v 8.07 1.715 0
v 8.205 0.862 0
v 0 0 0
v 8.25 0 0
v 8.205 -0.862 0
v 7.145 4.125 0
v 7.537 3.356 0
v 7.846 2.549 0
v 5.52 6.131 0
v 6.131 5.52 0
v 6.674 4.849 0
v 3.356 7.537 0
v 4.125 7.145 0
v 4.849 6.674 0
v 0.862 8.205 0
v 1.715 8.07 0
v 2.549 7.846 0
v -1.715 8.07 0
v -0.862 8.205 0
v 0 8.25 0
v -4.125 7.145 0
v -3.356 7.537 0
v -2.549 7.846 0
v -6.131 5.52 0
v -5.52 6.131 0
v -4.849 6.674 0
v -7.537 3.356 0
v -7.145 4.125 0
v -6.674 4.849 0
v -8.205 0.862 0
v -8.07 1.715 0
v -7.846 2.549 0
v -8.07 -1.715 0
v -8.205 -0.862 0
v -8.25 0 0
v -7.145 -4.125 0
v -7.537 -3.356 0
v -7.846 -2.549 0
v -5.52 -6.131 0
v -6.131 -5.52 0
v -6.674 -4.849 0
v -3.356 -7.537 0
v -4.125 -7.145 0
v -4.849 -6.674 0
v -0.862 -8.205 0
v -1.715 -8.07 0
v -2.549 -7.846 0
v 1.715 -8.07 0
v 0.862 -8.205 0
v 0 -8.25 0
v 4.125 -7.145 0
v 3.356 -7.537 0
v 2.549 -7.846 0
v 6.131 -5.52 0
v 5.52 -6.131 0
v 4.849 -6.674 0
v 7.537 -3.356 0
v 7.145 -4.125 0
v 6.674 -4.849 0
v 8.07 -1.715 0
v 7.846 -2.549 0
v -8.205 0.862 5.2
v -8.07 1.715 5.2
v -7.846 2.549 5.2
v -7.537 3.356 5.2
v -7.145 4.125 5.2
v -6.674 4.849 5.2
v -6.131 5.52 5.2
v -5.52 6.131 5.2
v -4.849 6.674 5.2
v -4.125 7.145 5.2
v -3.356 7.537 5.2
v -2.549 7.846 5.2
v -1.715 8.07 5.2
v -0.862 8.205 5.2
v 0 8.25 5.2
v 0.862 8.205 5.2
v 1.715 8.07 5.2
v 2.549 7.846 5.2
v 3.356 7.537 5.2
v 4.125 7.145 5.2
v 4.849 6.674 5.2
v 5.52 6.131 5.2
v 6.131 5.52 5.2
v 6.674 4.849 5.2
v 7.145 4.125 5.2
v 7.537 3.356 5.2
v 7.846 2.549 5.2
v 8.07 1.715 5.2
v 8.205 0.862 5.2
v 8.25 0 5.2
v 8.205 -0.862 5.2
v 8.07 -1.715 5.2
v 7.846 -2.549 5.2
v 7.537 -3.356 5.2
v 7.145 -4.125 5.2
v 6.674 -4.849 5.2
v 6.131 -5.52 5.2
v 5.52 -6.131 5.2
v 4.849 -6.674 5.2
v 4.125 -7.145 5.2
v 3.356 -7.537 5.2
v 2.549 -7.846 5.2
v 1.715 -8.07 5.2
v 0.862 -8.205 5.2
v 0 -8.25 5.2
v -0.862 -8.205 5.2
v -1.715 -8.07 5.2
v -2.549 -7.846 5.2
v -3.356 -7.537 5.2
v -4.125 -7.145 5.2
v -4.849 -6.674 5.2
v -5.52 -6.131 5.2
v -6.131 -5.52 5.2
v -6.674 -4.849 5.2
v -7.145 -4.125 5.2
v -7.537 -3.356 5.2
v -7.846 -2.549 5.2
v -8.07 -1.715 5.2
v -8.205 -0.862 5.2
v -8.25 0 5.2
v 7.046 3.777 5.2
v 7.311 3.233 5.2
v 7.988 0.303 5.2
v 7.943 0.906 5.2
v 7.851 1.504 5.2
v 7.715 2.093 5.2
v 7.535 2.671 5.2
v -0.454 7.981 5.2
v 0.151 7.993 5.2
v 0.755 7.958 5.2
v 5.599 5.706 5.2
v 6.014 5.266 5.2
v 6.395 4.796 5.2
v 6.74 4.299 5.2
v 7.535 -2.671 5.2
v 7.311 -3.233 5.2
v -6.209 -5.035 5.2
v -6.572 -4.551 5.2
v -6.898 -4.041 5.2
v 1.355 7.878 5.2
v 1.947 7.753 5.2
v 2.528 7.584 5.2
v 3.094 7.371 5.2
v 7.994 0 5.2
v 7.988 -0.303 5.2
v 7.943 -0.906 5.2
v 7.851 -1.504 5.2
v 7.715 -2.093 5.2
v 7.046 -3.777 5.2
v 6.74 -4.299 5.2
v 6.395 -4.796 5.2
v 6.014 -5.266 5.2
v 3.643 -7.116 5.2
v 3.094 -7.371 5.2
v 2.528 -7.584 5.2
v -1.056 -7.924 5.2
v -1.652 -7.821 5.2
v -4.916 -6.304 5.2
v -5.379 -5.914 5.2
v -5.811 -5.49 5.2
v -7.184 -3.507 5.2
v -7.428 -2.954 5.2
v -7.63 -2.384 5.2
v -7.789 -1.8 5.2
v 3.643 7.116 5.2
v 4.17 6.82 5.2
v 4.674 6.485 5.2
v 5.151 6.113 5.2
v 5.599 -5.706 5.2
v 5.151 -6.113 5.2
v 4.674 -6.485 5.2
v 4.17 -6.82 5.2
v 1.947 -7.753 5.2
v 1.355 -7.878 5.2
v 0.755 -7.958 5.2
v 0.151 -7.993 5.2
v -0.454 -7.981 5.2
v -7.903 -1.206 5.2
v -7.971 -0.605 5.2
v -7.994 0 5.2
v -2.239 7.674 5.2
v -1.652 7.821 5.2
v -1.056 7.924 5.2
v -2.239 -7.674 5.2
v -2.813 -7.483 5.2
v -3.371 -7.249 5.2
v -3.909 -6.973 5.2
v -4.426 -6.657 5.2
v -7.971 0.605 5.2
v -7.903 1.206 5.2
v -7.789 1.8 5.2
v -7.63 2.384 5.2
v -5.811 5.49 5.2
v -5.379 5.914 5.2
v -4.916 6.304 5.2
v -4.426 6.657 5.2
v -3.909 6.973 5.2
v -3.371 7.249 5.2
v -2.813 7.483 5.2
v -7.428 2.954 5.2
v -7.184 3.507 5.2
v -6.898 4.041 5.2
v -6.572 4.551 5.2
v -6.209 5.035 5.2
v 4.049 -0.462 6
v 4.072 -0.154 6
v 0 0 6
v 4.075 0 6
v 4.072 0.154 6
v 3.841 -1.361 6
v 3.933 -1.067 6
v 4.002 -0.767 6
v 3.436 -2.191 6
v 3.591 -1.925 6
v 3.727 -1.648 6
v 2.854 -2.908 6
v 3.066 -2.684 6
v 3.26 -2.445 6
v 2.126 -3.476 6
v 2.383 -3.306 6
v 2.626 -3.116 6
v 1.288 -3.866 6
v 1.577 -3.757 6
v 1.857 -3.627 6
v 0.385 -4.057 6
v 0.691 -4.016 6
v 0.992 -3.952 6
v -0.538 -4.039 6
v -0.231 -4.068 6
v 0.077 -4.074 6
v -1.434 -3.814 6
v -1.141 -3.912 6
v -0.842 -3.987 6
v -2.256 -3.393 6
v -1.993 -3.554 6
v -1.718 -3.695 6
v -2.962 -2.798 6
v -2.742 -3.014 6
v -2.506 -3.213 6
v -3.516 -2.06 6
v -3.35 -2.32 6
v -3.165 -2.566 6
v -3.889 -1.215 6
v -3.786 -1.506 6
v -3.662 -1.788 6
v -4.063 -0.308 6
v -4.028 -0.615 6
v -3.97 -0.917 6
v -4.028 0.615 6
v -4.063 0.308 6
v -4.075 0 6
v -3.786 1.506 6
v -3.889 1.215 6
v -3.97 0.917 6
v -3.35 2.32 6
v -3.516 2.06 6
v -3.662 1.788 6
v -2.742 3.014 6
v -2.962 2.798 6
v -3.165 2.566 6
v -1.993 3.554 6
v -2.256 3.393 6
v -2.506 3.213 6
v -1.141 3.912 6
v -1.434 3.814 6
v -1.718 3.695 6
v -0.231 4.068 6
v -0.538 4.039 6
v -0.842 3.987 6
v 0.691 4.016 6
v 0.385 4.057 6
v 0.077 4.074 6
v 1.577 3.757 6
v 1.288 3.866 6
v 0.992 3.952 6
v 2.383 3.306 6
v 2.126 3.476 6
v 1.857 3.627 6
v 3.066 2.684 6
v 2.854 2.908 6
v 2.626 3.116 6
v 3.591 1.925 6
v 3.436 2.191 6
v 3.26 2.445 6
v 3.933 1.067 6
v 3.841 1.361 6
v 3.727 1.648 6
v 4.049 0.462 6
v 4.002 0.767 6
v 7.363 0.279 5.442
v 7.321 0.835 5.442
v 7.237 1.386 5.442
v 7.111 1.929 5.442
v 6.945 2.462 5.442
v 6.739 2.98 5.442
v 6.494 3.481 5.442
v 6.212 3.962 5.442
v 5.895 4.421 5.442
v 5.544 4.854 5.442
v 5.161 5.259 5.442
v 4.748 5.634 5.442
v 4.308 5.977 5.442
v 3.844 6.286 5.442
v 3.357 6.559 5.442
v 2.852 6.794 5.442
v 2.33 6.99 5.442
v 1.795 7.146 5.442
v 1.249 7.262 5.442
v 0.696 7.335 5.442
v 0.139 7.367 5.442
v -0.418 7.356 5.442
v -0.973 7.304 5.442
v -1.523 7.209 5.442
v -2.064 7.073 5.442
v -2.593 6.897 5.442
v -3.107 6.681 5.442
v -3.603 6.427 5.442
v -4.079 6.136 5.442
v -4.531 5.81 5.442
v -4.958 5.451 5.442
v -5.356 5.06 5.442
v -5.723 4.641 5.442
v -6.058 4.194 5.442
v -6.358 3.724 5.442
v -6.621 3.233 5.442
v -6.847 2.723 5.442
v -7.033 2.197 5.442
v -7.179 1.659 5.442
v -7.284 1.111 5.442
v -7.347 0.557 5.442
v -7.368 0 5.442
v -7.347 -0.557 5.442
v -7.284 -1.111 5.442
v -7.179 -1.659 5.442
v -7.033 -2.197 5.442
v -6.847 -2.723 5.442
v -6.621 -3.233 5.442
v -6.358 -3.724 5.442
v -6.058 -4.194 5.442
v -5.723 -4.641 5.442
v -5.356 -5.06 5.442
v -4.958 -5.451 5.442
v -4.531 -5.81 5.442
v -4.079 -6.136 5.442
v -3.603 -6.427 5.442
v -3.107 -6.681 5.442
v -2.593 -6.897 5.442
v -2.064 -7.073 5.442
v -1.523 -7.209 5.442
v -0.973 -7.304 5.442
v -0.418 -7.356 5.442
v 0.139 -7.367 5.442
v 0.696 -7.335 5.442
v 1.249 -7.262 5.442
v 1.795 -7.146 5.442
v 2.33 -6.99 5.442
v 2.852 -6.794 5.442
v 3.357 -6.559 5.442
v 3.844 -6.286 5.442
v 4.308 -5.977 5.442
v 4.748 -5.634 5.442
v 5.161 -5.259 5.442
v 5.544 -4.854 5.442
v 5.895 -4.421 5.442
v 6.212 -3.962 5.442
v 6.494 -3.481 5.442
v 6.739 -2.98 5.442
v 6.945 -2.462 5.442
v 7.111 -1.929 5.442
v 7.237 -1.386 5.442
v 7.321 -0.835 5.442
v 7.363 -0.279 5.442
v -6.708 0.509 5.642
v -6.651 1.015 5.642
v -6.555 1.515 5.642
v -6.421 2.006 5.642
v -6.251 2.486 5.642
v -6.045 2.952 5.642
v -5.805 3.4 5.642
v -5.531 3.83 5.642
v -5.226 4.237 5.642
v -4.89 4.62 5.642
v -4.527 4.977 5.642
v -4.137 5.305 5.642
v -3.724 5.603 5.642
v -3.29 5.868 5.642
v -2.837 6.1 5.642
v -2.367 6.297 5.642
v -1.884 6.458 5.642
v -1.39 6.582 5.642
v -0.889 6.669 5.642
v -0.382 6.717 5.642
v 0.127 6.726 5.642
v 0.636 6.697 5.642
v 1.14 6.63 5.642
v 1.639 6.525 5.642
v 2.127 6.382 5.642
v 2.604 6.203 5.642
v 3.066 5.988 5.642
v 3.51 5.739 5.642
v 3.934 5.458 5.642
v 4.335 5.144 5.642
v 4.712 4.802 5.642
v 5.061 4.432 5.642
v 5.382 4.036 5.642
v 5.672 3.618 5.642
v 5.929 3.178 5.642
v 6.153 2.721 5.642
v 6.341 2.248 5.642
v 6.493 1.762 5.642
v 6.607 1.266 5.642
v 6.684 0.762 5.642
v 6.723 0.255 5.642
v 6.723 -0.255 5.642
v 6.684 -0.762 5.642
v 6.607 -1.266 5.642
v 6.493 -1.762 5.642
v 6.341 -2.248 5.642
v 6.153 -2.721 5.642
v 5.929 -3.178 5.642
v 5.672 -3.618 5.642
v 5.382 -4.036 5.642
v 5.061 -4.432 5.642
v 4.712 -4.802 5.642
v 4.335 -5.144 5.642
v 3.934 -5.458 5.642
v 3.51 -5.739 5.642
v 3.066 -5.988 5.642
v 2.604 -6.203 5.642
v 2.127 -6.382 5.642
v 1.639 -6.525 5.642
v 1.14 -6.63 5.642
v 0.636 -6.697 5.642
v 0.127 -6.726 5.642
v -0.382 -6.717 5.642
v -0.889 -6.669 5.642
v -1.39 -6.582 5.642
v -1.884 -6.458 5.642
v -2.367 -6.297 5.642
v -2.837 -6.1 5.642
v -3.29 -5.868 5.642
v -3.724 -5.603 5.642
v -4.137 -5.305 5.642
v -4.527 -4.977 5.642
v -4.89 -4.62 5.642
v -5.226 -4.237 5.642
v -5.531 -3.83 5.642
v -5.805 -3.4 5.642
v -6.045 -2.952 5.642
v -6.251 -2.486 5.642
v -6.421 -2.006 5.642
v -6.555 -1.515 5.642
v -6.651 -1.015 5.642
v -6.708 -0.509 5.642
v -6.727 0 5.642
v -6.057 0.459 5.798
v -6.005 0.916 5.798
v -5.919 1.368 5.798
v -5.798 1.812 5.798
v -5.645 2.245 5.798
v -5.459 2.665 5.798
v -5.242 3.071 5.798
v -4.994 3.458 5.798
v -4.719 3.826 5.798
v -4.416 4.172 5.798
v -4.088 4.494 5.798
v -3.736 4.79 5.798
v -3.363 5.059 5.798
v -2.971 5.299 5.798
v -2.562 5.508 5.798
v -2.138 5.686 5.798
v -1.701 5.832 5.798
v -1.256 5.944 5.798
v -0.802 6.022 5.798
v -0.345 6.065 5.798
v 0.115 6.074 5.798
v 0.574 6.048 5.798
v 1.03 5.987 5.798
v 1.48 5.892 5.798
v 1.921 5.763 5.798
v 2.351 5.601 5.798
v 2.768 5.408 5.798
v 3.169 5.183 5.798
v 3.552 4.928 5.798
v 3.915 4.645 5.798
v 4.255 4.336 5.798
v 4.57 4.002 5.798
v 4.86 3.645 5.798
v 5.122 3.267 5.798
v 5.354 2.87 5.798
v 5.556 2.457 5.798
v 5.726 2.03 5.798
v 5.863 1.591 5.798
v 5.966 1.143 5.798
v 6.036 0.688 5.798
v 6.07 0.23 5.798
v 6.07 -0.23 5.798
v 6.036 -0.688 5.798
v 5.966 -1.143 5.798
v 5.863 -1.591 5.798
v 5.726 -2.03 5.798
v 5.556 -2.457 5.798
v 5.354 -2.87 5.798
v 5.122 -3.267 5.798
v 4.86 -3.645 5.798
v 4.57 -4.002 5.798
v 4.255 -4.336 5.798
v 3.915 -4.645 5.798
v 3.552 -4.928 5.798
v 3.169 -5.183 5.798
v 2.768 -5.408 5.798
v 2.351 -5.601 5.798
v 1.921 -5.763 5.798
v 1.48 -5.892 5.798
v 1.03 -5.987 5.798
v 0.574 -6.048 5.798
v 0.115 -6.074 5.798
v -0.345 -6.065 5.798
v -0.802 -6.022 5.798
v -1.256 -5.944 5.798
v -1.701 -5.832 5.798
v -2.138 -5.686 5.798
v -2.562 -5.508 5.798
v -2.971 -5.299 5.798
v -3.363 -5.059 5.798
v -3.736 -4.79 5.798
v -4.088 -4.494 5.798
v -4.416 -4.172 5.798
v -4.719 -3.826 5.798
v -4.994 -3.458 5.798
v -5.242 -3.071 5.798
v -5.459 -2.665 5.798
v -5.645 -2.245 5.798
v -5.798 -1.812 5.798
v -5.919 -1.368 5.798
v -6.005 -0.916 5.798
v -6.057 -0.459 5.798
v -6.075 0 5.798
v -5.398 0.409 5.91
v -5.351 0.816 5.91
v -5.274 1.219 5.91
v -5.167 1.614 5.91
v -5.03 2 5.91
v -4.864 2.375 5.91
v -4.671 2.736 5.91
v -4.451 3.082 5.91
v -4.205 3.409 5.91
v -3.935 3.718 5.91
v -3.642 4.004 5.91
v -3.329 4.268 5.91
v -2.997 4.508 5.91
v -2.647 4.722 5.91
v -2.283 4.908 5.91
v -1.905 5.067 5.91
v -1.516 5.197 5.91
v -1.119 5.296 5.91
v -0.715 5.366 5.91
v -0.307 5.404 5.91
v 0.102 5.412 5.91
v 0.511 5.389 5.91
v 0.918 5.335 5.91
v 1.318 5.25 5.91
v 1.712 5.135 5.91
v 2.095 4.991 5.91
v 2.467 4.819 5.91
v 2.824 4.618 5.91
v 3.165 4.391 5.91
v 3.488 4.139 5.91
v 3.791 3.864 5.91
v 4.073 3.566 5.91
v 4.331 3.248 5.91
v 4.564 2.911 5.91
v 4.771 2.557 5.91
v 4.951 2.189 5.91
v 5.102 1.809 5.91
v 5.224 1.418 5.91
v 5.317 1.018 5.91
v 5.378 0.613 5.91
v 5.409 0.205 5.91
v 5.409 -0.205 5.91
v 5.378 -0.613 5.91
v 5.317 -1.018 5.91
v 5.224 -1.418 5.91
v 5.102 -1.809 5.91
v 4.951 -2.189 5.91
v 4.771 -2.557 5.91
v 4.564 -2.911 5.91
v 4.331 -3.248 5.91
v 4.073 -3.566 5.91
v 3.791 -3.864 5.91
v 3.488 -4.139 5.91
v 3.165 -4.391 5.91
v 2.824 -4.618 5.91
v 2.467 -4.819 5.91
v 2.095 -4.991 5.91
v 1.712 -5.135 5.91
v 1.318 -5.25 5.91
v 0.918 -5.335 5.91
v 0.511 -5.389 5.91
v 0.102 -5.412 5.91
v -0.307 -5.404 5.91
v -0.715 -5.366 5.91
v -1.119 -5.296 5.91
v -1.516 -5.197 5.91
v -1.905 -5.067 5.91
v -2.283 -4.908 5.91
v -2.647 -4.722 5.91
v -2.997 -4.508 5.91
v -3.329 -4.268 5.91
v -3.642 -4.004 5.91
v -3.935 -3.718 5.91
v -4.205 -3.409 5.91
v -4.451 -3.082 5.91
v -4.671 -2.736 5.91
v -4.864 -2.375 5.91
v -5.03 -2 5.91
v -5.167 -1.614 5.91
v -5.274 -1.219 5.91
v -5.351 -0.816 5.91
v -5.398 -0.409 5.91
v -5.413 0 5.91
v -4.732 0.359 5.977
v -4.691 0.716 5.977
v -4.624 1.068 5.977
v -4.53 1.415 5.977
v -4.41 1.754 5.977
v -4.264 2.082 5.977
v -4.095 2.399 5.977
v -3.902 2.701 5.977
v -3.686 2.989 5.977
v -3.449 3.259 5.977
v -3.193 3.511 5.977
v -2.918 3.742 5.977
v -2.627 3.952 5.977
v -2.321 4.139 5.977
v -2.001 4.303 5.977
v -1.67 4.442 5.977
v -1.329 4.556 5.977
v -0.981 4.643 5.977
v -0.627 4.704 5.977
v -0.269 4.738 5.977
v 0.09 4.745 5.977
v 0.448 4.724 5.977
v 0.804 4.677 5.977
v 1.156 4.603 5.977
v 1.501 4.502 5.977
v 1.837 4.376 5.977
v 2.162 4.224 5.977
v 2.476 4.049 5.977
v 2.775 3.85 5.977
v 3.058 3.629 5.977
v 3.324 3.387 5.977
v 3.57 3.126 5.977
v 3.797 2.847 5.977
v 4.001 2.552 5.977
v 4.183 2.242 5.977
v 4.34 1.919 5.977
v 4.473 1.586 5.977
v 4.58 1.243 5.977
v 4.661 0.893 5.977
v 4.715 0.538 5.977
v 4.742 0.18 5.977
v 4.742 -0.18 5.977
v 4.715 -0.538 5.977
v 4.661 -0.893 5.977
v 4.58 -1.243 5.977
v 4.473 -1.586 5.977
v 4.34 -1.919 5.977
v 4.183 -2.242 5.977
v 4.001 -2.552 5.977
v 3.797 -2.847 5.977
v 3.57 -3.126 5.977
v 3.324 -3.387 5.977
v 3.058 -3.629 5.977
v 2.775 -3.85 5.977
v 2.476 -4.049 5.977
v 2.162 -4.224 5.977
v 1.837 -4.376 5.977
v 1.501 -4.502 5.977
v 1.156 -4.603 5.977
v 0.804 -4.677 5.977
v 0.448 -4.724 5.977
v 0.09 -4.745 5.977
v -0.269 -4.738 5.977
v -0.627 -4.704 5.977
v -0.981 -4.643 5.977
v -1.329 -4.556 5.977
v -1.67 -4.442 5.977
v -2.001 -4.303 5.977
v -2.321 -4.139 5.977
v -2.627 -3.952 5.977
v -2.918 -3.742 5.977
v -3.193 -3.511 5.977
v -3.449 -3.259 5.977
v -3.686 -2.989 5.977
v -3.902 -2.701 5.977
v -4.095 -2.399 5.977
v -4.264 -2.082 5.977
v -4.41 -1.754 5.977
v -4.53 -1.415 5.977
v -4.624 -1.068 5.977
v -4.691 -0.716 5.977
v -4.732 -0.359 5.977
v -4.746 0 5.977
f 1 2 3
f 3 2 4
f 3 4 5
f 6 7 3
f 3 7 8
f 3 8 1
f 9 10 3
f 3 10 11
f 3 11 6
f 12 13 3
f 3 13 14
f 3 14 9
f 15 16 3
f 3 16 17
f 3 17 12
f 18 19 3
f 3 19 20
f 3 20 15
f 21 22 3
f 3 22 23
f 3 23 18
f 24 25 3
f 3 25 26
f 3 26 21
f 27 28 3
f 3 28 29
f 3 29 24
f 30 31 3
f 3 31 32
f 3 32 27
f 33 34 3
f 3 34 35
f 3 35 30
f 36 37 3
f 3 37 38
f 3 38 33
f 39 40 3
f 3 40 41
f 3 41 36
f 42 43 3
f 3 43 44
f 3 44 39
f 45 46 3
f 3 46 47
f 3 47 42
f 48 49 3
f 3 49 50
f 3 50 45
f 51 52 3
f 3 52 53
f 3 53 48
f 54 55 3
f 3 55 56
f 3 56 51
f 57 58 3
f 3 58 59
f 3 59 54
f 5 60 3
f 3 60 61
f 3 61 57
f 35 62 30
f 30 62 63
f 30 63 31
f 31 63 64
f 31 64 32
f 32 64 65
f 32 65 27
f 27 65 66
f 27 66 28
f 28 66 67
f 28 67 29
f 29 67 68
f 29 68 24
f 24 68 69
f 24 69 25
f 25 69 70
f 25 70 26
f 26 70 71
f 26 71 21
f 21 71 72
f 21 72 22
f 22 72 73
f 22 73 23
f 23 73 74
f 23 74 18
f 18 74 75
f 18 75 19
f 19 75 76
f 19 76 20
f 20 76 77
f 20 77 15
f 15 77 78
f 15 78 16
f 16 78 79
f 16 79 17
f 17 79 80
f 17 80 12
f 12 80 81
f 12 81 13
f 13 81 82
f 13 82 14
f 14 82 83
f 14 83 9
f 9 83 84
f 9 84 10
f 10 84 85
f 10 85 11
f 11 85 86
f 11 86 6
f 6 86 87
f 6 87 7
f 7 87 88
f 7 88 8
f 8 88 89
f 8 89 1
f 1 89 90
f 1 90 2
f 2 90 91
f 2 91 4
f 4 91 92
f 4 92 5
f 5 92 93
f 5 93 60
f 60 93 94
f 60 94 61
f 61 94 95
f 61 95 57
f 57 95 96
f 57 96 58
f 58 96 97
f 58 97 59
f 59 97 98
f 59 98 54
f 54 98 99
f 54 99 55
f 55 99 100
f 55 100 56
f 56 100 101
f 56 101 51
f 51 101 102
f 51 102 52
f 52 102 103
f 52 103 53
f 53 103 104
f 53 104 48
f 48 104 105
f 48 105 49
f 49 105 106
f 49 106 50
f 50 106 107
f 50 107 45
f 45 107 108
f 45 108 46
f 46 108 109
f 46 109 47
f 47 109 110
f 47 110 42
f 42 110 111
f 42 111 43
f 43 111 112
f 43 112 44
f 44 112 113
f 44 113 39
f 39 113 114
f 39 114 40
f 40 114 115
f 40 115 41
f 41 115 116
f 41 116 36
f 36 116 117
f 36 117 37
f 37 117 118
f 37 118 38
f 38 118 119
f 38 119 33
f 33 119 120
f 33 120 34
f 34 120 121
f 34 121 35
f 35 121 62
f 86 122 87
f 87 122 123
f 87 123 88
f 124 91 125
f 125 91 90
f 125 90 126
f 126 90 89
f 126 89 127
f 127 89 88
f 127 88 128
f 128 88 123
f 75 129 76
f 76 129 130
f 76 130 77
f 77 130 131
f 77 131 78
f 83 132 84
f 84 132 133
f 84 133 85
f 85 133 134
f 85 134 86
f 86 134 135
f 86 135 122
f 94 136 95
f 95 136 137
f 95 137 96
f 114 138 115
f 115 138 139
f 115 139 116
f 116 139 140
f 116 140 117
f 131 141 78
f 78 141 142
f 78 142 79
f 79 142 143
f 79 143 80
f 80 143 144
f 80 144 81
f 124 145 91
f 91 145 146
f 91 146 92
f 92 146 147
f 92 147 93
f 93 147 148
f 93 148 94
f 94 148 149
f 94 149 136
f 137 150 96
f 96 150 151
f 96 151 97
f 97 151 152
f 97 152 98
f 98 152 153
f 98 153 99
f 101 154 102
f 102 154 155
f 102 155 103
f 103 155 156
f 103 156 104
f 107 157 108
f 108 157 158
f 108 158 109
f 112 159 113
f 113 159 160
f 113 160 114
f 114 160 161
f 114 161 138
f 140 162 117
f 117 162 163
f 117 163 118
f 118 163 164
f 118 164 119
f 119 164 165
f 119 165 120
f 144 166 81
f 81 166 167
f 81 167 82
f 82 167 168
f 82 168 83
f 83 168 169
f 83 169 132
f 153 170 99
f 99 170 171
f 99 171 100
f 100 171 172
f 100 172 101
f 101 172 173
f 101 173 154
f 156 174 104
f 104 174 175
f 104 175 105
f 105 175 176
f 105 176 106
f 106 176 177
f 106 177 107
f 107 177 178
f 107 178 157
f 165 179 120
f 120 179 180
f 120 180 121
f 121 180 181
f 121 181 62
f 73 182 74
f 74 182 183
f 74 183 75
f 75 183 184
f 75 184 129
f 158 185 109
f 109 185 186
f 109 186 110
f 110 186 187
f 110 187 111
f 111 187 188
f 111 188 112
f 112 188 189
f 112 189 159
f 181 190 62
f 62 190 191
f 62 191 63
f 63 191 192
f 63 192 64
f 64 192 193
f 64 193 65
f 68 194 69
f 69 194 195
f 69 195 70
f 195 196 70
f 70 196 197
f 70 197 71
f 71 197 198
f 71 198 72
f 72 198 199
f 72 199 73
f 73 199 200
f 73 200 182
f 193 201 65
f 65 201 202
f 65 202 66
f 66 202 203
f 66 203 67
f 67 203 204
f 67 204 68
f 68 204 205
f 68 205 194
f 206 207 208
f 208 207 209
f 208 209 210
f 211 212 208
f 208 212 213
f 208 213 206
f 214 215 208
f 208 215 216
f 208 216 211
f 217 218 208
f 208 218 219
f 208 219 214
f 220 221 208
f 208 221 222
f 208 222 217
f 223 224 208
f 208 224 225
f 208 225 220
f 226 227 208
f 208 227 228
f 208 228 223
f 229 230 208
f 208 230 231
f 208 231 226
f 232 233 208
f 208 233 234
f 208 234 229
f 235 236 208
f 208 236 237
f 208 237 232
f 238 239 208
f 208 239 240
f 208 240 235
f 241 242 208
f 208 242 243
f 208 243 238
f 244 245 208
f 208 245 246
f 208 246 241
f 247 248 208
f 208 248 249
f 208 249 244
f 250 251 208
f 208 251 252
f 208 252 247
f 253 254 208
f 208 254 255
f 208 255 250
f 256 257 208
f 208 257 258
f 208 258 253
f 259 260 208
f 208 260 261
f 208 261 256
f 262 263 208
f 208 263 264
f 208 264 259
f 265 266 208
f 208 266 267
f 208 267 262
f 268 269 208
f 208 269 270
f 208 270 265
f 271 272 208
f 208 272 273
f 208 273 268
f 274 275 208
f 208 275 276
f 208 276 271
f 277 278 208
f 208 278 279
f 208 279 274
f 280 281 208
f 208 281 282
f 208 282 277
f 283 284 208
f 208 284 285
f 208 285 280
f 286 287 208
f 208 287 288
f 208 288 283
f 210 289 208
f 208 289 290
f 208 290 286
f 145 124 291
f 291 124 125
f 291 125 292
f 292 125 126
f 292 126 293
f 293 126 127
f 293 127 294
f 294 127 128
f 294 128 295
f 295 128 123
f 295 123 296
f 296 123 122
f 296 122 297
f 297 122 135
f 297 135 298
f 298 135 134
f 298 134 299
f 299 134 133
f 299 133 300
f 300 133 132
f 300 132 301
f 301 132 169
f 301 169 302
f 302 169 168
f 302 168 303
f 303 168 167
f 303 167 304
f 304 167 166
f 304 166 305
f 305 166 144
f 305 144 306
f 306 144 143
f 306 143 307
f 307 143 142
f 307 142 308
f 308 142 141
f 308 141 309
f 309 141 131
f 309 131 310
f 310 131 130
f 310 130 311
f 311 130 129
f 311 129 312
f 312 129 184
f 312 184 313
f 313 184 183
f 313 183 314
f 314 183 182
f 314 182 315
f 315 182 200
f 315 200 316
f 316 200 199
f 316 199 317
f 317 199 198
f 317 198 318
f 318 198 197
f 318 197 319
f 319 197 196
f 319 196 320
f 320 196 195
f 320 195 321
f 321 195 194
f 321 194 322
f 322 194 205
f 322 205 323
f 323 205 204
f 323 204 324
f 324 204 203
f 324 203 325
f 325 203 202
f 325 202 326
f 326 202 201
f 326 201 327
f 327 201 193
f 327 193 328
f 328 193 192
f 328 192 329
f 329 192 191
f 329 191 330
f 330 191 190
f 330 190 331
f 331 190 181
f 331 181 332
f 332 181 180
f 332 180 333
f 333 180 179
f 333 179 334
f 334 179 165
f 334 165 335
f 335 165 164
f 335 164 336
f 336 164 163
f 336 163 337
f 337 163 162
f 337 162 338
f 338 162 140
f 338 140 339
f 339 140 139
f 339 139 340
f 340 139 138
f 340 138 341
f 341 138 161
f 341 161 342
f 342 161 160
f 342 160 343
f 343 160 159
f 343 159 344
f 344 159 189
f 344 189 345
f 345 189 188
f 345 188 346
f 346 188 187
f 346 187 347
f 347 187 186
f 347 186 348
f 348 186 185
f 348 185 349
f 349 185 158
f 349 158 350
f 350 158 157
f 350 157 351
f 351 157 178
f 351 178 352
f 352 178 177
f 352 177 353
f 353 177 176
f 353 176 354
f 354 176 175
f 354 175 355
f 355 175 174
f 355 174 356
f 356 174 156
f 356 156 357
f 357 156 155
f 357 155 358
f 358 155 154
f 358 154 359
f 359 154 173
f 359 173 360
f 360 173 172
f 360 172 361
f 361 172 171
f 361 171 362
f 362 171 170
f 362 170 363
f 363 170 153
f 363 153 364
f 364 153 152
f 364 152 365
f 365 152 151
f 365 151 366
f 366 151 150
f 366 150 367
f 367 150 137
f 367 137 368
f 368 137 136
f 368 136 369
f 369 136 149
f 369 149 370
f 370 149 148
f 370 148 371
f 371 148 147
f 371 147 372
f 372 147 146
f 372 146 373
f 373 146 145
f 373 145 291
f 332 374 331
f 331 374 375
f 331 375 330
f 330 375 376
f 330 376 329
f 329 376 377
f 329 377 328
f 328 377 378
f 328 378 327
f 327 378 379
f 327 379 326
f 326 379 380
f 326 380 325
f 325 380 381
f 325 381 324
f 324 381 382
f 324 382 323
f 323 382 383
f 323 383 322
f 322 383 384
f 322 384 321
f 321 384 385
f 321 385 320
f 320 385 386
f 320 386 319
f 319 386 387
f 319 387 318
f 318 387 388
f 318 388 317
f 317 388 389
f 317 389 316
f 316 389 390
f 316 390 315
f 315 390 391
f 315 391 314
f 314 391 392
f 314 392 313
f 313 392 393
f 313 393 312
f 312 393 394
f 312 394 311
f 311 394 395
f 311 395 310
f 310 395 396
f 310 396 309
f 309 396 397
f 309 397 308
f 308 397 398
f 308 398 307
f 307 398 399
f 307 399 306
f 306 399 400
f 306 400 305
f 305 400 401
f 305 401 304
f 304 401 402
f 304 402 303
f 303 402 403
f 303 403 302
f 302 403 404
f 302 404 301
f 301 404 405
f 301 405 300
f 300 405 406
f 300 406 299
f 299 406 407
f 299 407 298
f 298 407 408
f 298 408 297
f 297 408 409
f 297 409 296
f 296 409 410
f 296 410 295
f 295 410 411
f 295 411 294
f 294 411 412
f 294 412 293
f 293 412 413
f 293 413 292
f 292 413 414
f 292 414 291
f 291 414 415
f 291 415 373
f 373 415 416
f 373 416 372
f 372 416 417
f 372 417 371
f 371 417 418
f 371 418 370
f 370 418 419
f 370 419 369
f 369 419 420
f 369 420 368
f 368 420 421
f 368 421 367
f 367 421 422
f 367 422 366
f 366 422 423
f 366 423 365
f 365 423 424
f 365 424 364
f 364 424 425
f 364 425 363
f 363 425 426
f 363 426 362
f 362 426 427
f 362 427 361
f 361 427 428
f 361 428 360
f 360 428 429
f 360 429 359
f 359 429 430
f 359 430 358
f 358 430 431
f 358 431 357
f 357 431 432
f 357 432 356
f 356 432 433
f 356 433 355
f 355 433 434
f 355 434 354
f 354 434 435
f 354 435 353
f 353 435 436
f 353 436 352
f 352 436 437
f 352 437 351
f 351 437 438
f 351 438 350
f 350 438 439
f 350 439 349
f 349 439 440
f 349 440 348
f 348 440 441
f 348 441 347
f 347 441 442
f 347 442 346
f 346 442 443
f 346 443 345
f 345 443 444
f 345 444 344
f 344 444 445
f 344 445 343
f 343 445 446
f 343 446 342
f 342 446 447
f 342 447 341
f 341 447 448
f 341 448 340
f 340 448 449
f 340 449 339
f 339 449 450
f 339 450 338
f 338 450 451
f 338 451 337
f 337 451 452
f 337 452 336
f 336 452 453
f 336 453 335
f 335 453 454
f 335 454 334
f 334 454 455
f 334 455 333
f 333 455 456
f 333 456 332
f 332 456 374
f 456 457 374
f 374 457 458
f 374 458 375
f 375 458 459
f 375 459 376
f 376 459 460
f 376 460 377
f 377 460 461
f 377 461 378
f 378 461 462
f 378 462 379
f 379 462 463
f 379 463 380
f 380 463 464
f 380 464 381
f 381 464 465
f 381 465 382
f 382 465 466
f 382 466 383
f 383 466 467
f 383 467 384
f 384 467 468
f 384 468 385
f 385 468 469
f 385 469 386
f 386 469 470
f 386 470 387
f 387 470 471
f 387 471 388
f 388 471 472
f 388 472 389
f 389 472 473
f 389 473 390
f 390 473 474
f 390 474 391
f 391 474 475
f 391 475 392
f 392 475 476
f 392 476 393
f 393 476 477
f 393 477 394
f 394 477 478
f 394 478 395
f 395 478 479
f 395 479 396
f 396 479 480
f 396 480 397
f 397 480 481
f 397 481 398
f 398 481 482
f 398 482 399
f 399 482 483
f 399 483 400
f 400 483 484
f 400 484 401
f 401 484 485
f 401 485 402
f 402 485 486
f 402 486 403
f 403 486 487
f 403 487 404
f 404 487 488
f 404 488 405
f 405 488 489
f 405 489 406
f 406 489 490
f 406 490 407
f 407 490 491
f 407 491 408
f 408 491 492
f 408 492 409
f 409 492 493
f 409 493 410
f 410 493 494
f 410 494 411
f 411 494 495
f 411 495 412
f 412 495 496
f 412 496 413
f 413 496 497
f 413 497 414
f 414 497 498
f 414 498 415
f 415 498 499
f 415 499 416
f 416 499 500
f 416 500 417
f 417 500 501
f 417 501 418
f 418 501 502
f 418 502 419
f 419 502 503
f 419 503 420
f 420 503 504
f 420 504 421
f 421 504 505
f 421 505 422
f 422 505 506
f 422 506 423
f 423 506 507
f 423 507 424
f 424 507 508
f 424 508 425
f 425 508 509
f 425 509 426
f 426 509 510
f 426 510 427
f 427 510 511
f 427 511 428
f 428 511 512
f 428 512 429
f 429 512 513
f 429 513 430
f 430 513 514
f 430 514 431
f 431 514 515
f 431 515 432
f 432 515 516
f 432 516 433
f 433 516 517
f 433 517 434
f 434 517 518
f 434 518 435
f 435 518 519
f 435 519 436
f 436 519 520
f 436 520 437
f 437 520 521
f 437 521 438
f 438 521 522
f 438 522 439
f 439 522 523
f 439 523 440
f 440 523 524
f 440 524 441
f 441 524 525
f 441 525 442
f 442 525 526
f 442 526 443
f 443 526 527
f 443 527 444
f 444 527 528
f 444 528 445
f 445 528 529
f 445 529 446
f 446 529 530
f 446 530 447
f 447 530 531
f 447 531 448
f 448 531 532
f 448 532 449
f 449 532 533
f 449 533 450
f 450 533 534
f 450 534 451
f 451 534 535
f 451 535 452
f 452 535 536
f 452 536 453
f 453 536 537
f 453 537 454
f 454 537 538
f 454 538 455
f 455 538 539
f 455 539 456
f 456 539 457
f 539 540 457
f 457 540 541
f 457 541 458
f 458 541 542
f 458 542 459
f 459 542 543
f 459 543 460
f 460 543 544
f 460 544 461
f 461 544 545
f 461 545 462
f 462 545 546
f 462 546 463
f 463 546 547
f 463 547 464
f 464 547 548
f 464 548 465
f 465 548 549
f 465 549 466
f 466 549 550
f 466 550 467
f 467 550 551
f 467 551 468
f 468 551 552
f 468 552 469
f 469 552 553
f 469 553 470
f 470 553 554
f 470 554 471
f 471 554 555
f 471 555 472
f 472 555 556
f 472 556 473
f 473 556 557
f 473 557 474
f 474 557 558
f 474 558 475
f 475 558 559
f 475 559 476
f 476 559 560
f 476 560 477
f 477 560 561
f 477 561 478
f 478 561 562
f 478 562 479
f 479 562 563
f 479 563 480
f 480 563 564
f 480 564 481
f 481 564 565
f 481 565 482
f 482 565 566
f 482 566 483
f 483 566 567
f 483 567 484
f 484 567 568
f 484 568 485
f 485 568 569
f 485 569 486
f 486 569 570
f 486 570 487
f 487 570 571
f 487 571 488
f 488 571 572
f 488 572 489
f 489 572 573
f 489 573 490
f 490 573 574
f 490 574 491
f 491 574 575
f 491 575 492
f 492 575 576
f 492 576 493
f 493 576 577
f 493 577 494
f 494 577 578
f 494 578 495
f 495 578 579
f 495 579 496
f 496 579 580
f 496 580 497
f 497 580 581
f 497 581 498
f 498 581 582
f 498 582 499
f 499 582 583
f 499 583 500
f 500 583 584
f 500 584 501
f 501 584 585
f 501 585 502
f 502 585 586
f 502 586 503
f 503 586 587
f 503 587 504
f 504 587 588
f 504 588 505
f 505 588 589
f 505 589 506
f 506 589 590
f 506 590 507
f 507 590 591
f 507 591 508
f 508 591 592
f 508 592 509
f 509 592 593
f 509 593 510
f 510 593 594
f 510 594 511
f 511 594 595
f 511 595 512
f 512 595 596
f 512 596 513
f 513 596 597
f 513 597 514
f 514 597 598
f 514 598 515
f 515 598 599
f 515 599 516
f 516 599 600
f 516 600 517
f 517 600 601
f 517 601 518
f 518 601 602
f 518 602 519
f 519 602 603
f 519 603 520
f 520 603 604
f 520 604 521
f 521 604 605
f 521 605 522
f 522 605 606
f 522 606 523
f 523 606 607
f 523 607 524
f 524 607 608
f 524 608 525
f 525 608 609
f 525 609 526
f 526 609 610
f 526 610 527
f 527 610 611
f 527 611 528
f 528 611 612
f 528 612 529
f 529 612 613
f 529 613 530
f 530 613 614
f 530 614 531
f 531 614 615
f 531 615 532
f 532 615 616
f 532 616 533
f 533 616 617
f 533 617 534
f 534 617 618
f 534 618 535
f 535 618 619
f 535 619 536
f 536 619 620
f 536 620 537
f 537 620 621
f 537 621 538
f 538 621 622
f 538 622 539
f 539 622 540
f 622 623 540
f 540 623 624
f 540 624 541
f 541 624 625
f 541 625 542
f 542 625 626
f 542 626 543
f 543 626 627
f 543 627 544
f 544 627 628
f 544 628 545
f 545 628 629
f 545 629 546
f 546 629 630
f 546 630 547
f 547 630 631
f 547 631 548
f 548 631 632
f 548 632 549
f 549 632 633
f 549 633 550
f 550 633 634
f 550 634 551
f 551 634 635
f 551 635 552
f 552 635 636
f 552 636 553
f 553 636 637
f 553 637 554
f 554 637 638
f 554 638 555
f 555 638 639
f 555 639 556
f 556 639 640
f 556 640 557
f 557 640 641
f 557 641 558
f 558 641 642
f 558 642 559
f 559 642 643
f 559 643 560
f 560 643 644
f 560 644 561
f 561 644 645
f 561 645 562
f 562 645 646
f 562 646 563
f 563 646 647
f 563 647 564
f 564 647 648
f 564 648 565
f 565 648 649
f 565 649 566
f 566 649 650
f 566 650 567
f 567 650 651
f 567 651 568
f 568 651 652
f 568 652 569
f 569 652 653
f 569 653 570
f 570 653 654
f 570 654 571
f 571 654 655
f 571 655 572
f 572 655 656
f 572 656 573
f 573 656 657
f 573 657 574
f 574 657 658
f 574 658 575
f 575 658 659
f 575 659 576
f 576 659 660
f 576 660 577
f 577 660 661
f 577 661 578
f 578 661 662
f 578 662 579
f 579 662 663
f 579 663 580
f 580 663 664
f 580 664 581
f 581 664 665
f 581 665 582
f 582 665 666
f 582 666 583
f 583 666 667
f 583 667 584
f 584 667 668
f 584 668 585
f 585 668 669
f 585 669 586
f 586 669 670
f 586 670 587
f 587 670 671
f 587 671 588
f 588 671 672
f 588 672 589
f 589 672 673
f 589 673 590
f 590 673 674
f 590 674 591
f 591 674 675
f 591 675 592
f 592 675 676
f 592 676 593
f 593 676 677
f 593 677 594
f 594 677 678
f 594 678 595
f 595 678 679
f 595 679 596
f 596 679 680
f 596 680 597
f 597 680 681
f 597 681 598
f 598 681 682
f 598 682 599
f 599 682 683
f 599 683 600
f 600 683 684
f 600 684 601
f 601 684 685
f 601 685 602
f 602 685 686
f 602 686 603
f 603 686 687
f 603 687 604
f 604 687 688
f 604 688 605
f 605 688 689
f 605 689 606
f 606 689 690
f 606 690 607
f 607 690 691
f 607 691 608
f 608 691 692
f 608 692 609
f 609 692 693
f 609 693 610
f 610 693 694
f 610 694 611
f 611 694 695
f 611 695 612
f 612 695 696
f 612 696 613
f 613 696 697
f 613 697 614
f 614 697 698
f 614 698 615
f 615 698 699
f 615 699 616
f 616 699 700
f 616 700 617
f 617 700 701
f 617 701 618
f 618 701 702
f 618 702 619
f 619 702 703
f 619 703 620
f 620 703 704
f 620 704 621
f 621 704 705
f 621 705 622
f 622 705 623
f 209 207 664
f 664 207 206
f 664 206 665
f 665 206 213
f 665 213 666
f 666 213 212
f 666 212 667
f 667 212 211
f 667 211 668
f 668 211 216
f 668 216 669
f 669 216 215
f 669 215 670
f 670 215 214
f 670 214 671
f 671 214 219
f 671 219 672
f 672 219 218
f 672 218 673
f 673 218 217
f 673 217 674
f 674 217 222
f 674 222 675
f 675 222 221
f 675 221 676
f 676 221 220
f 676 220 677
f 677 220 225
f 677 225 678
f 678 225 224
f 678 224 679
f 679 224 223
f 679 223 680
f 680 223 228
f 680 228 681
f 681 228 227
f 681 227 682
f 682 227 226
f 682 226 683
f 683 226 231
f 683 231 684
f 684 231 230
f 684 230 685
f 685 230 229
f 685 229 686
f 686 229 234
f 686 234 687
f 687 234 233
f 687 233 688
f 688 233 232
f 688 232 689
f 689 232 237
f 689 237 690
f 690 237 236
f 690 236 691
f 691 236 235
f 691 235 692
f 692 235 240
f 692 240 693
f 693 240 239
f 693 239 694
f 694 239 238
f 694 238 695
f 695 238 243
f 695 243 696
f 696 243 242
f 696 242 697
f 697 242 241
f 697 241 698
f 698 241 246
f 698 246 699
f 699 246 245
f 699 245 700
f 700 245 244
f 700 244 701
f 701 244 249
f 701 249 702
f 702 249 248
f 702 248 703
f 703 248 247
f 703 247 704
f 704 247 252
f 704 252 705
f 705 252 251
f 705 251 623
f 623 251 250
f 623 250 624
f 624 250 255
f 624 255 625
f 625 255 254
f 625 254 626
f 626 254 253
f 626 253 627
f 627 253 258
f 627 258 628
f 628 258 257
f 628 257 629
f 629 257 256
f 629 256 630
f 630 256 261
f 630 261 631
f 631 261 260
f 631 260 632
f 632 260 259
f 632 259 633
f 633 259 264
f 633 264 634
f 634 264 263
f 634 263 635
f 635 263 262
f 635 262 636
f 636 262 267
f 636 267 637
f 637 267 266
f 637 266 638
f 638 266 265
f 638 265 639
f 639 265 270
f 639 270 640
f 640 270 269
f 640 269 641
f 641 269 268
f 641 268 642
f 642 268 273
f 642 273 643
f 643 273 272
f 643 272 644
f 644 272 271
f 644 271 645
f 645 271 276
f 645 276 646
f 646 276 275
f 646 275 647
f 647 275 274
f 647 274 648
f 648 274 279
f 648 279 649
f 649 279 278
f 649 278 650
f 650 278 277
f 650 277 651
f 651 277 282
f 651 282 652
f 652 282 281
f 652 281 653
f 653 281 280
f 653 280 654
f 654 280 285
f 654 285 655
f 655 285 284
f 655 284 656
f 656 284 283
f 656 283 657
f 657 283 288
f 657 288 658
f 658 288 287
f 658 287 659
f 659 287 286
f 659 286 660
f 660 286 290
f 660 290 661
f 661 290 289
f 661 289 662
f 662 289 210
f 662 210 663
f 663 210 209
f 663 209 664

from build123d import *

# Parameters (mm, degrees)
SKETCH1_R           = 8.25
BOSS_EXTRUDE1_DEPTH = 5.2
SKETCH1_4_R         = 7.994032283
BOSS_EXTRUDE3_DEPTH = 6
FILLET1_R           = 10


with BuildPart() as part:
    # Sketch1 → Boss-Extrude1 (new body)
    with BuildSketch(Plane.XY):
        Circle(SKETCH1_R)
    extrude(amount=BOSS_EXTRUDE1_DEPTH)

    # Sketch1<4> → Boss-Extrude3 (add)
    with BuildSketch(Plane.XY):
        Circle(SKETCH1_4_R)
    extrude(amount=BOSS_EXTRUDE3_DEPTH)

    # Fillet1
    # the kernel refuses this fillet: 10 mm, written as the material it takes off along each edge
    with BuildSketch(Plane(origin=(0, 0, 6), x_dir=(1, 0, 0), z_dir=(0, -1, 0))) as fillet1_piece_1:
        with BuildLine():
            CenterArc((4.074848695, -10), FILLET1_R, 66.926081934, 23.073918066)
            Line((4.074848695, 0), (4.074848695, 0.2))
            Line((4.074848695, 0.2), (7.994032283, 0.2))
            Line((7.994032283, 0.2), (8.194032283, 0))
            ThreePointArc((8.194032283, 0), (8.194032283, -0.4), (8.072415955, -0.616))
            Line((8.072415955, -0.616), (7.994032283, -0.8))
        make_face()
    revolve(axis=Axis((0, 0, 6), (0, 0, 1)), mode=Mode.SUBTRACT)


solid = part.part
